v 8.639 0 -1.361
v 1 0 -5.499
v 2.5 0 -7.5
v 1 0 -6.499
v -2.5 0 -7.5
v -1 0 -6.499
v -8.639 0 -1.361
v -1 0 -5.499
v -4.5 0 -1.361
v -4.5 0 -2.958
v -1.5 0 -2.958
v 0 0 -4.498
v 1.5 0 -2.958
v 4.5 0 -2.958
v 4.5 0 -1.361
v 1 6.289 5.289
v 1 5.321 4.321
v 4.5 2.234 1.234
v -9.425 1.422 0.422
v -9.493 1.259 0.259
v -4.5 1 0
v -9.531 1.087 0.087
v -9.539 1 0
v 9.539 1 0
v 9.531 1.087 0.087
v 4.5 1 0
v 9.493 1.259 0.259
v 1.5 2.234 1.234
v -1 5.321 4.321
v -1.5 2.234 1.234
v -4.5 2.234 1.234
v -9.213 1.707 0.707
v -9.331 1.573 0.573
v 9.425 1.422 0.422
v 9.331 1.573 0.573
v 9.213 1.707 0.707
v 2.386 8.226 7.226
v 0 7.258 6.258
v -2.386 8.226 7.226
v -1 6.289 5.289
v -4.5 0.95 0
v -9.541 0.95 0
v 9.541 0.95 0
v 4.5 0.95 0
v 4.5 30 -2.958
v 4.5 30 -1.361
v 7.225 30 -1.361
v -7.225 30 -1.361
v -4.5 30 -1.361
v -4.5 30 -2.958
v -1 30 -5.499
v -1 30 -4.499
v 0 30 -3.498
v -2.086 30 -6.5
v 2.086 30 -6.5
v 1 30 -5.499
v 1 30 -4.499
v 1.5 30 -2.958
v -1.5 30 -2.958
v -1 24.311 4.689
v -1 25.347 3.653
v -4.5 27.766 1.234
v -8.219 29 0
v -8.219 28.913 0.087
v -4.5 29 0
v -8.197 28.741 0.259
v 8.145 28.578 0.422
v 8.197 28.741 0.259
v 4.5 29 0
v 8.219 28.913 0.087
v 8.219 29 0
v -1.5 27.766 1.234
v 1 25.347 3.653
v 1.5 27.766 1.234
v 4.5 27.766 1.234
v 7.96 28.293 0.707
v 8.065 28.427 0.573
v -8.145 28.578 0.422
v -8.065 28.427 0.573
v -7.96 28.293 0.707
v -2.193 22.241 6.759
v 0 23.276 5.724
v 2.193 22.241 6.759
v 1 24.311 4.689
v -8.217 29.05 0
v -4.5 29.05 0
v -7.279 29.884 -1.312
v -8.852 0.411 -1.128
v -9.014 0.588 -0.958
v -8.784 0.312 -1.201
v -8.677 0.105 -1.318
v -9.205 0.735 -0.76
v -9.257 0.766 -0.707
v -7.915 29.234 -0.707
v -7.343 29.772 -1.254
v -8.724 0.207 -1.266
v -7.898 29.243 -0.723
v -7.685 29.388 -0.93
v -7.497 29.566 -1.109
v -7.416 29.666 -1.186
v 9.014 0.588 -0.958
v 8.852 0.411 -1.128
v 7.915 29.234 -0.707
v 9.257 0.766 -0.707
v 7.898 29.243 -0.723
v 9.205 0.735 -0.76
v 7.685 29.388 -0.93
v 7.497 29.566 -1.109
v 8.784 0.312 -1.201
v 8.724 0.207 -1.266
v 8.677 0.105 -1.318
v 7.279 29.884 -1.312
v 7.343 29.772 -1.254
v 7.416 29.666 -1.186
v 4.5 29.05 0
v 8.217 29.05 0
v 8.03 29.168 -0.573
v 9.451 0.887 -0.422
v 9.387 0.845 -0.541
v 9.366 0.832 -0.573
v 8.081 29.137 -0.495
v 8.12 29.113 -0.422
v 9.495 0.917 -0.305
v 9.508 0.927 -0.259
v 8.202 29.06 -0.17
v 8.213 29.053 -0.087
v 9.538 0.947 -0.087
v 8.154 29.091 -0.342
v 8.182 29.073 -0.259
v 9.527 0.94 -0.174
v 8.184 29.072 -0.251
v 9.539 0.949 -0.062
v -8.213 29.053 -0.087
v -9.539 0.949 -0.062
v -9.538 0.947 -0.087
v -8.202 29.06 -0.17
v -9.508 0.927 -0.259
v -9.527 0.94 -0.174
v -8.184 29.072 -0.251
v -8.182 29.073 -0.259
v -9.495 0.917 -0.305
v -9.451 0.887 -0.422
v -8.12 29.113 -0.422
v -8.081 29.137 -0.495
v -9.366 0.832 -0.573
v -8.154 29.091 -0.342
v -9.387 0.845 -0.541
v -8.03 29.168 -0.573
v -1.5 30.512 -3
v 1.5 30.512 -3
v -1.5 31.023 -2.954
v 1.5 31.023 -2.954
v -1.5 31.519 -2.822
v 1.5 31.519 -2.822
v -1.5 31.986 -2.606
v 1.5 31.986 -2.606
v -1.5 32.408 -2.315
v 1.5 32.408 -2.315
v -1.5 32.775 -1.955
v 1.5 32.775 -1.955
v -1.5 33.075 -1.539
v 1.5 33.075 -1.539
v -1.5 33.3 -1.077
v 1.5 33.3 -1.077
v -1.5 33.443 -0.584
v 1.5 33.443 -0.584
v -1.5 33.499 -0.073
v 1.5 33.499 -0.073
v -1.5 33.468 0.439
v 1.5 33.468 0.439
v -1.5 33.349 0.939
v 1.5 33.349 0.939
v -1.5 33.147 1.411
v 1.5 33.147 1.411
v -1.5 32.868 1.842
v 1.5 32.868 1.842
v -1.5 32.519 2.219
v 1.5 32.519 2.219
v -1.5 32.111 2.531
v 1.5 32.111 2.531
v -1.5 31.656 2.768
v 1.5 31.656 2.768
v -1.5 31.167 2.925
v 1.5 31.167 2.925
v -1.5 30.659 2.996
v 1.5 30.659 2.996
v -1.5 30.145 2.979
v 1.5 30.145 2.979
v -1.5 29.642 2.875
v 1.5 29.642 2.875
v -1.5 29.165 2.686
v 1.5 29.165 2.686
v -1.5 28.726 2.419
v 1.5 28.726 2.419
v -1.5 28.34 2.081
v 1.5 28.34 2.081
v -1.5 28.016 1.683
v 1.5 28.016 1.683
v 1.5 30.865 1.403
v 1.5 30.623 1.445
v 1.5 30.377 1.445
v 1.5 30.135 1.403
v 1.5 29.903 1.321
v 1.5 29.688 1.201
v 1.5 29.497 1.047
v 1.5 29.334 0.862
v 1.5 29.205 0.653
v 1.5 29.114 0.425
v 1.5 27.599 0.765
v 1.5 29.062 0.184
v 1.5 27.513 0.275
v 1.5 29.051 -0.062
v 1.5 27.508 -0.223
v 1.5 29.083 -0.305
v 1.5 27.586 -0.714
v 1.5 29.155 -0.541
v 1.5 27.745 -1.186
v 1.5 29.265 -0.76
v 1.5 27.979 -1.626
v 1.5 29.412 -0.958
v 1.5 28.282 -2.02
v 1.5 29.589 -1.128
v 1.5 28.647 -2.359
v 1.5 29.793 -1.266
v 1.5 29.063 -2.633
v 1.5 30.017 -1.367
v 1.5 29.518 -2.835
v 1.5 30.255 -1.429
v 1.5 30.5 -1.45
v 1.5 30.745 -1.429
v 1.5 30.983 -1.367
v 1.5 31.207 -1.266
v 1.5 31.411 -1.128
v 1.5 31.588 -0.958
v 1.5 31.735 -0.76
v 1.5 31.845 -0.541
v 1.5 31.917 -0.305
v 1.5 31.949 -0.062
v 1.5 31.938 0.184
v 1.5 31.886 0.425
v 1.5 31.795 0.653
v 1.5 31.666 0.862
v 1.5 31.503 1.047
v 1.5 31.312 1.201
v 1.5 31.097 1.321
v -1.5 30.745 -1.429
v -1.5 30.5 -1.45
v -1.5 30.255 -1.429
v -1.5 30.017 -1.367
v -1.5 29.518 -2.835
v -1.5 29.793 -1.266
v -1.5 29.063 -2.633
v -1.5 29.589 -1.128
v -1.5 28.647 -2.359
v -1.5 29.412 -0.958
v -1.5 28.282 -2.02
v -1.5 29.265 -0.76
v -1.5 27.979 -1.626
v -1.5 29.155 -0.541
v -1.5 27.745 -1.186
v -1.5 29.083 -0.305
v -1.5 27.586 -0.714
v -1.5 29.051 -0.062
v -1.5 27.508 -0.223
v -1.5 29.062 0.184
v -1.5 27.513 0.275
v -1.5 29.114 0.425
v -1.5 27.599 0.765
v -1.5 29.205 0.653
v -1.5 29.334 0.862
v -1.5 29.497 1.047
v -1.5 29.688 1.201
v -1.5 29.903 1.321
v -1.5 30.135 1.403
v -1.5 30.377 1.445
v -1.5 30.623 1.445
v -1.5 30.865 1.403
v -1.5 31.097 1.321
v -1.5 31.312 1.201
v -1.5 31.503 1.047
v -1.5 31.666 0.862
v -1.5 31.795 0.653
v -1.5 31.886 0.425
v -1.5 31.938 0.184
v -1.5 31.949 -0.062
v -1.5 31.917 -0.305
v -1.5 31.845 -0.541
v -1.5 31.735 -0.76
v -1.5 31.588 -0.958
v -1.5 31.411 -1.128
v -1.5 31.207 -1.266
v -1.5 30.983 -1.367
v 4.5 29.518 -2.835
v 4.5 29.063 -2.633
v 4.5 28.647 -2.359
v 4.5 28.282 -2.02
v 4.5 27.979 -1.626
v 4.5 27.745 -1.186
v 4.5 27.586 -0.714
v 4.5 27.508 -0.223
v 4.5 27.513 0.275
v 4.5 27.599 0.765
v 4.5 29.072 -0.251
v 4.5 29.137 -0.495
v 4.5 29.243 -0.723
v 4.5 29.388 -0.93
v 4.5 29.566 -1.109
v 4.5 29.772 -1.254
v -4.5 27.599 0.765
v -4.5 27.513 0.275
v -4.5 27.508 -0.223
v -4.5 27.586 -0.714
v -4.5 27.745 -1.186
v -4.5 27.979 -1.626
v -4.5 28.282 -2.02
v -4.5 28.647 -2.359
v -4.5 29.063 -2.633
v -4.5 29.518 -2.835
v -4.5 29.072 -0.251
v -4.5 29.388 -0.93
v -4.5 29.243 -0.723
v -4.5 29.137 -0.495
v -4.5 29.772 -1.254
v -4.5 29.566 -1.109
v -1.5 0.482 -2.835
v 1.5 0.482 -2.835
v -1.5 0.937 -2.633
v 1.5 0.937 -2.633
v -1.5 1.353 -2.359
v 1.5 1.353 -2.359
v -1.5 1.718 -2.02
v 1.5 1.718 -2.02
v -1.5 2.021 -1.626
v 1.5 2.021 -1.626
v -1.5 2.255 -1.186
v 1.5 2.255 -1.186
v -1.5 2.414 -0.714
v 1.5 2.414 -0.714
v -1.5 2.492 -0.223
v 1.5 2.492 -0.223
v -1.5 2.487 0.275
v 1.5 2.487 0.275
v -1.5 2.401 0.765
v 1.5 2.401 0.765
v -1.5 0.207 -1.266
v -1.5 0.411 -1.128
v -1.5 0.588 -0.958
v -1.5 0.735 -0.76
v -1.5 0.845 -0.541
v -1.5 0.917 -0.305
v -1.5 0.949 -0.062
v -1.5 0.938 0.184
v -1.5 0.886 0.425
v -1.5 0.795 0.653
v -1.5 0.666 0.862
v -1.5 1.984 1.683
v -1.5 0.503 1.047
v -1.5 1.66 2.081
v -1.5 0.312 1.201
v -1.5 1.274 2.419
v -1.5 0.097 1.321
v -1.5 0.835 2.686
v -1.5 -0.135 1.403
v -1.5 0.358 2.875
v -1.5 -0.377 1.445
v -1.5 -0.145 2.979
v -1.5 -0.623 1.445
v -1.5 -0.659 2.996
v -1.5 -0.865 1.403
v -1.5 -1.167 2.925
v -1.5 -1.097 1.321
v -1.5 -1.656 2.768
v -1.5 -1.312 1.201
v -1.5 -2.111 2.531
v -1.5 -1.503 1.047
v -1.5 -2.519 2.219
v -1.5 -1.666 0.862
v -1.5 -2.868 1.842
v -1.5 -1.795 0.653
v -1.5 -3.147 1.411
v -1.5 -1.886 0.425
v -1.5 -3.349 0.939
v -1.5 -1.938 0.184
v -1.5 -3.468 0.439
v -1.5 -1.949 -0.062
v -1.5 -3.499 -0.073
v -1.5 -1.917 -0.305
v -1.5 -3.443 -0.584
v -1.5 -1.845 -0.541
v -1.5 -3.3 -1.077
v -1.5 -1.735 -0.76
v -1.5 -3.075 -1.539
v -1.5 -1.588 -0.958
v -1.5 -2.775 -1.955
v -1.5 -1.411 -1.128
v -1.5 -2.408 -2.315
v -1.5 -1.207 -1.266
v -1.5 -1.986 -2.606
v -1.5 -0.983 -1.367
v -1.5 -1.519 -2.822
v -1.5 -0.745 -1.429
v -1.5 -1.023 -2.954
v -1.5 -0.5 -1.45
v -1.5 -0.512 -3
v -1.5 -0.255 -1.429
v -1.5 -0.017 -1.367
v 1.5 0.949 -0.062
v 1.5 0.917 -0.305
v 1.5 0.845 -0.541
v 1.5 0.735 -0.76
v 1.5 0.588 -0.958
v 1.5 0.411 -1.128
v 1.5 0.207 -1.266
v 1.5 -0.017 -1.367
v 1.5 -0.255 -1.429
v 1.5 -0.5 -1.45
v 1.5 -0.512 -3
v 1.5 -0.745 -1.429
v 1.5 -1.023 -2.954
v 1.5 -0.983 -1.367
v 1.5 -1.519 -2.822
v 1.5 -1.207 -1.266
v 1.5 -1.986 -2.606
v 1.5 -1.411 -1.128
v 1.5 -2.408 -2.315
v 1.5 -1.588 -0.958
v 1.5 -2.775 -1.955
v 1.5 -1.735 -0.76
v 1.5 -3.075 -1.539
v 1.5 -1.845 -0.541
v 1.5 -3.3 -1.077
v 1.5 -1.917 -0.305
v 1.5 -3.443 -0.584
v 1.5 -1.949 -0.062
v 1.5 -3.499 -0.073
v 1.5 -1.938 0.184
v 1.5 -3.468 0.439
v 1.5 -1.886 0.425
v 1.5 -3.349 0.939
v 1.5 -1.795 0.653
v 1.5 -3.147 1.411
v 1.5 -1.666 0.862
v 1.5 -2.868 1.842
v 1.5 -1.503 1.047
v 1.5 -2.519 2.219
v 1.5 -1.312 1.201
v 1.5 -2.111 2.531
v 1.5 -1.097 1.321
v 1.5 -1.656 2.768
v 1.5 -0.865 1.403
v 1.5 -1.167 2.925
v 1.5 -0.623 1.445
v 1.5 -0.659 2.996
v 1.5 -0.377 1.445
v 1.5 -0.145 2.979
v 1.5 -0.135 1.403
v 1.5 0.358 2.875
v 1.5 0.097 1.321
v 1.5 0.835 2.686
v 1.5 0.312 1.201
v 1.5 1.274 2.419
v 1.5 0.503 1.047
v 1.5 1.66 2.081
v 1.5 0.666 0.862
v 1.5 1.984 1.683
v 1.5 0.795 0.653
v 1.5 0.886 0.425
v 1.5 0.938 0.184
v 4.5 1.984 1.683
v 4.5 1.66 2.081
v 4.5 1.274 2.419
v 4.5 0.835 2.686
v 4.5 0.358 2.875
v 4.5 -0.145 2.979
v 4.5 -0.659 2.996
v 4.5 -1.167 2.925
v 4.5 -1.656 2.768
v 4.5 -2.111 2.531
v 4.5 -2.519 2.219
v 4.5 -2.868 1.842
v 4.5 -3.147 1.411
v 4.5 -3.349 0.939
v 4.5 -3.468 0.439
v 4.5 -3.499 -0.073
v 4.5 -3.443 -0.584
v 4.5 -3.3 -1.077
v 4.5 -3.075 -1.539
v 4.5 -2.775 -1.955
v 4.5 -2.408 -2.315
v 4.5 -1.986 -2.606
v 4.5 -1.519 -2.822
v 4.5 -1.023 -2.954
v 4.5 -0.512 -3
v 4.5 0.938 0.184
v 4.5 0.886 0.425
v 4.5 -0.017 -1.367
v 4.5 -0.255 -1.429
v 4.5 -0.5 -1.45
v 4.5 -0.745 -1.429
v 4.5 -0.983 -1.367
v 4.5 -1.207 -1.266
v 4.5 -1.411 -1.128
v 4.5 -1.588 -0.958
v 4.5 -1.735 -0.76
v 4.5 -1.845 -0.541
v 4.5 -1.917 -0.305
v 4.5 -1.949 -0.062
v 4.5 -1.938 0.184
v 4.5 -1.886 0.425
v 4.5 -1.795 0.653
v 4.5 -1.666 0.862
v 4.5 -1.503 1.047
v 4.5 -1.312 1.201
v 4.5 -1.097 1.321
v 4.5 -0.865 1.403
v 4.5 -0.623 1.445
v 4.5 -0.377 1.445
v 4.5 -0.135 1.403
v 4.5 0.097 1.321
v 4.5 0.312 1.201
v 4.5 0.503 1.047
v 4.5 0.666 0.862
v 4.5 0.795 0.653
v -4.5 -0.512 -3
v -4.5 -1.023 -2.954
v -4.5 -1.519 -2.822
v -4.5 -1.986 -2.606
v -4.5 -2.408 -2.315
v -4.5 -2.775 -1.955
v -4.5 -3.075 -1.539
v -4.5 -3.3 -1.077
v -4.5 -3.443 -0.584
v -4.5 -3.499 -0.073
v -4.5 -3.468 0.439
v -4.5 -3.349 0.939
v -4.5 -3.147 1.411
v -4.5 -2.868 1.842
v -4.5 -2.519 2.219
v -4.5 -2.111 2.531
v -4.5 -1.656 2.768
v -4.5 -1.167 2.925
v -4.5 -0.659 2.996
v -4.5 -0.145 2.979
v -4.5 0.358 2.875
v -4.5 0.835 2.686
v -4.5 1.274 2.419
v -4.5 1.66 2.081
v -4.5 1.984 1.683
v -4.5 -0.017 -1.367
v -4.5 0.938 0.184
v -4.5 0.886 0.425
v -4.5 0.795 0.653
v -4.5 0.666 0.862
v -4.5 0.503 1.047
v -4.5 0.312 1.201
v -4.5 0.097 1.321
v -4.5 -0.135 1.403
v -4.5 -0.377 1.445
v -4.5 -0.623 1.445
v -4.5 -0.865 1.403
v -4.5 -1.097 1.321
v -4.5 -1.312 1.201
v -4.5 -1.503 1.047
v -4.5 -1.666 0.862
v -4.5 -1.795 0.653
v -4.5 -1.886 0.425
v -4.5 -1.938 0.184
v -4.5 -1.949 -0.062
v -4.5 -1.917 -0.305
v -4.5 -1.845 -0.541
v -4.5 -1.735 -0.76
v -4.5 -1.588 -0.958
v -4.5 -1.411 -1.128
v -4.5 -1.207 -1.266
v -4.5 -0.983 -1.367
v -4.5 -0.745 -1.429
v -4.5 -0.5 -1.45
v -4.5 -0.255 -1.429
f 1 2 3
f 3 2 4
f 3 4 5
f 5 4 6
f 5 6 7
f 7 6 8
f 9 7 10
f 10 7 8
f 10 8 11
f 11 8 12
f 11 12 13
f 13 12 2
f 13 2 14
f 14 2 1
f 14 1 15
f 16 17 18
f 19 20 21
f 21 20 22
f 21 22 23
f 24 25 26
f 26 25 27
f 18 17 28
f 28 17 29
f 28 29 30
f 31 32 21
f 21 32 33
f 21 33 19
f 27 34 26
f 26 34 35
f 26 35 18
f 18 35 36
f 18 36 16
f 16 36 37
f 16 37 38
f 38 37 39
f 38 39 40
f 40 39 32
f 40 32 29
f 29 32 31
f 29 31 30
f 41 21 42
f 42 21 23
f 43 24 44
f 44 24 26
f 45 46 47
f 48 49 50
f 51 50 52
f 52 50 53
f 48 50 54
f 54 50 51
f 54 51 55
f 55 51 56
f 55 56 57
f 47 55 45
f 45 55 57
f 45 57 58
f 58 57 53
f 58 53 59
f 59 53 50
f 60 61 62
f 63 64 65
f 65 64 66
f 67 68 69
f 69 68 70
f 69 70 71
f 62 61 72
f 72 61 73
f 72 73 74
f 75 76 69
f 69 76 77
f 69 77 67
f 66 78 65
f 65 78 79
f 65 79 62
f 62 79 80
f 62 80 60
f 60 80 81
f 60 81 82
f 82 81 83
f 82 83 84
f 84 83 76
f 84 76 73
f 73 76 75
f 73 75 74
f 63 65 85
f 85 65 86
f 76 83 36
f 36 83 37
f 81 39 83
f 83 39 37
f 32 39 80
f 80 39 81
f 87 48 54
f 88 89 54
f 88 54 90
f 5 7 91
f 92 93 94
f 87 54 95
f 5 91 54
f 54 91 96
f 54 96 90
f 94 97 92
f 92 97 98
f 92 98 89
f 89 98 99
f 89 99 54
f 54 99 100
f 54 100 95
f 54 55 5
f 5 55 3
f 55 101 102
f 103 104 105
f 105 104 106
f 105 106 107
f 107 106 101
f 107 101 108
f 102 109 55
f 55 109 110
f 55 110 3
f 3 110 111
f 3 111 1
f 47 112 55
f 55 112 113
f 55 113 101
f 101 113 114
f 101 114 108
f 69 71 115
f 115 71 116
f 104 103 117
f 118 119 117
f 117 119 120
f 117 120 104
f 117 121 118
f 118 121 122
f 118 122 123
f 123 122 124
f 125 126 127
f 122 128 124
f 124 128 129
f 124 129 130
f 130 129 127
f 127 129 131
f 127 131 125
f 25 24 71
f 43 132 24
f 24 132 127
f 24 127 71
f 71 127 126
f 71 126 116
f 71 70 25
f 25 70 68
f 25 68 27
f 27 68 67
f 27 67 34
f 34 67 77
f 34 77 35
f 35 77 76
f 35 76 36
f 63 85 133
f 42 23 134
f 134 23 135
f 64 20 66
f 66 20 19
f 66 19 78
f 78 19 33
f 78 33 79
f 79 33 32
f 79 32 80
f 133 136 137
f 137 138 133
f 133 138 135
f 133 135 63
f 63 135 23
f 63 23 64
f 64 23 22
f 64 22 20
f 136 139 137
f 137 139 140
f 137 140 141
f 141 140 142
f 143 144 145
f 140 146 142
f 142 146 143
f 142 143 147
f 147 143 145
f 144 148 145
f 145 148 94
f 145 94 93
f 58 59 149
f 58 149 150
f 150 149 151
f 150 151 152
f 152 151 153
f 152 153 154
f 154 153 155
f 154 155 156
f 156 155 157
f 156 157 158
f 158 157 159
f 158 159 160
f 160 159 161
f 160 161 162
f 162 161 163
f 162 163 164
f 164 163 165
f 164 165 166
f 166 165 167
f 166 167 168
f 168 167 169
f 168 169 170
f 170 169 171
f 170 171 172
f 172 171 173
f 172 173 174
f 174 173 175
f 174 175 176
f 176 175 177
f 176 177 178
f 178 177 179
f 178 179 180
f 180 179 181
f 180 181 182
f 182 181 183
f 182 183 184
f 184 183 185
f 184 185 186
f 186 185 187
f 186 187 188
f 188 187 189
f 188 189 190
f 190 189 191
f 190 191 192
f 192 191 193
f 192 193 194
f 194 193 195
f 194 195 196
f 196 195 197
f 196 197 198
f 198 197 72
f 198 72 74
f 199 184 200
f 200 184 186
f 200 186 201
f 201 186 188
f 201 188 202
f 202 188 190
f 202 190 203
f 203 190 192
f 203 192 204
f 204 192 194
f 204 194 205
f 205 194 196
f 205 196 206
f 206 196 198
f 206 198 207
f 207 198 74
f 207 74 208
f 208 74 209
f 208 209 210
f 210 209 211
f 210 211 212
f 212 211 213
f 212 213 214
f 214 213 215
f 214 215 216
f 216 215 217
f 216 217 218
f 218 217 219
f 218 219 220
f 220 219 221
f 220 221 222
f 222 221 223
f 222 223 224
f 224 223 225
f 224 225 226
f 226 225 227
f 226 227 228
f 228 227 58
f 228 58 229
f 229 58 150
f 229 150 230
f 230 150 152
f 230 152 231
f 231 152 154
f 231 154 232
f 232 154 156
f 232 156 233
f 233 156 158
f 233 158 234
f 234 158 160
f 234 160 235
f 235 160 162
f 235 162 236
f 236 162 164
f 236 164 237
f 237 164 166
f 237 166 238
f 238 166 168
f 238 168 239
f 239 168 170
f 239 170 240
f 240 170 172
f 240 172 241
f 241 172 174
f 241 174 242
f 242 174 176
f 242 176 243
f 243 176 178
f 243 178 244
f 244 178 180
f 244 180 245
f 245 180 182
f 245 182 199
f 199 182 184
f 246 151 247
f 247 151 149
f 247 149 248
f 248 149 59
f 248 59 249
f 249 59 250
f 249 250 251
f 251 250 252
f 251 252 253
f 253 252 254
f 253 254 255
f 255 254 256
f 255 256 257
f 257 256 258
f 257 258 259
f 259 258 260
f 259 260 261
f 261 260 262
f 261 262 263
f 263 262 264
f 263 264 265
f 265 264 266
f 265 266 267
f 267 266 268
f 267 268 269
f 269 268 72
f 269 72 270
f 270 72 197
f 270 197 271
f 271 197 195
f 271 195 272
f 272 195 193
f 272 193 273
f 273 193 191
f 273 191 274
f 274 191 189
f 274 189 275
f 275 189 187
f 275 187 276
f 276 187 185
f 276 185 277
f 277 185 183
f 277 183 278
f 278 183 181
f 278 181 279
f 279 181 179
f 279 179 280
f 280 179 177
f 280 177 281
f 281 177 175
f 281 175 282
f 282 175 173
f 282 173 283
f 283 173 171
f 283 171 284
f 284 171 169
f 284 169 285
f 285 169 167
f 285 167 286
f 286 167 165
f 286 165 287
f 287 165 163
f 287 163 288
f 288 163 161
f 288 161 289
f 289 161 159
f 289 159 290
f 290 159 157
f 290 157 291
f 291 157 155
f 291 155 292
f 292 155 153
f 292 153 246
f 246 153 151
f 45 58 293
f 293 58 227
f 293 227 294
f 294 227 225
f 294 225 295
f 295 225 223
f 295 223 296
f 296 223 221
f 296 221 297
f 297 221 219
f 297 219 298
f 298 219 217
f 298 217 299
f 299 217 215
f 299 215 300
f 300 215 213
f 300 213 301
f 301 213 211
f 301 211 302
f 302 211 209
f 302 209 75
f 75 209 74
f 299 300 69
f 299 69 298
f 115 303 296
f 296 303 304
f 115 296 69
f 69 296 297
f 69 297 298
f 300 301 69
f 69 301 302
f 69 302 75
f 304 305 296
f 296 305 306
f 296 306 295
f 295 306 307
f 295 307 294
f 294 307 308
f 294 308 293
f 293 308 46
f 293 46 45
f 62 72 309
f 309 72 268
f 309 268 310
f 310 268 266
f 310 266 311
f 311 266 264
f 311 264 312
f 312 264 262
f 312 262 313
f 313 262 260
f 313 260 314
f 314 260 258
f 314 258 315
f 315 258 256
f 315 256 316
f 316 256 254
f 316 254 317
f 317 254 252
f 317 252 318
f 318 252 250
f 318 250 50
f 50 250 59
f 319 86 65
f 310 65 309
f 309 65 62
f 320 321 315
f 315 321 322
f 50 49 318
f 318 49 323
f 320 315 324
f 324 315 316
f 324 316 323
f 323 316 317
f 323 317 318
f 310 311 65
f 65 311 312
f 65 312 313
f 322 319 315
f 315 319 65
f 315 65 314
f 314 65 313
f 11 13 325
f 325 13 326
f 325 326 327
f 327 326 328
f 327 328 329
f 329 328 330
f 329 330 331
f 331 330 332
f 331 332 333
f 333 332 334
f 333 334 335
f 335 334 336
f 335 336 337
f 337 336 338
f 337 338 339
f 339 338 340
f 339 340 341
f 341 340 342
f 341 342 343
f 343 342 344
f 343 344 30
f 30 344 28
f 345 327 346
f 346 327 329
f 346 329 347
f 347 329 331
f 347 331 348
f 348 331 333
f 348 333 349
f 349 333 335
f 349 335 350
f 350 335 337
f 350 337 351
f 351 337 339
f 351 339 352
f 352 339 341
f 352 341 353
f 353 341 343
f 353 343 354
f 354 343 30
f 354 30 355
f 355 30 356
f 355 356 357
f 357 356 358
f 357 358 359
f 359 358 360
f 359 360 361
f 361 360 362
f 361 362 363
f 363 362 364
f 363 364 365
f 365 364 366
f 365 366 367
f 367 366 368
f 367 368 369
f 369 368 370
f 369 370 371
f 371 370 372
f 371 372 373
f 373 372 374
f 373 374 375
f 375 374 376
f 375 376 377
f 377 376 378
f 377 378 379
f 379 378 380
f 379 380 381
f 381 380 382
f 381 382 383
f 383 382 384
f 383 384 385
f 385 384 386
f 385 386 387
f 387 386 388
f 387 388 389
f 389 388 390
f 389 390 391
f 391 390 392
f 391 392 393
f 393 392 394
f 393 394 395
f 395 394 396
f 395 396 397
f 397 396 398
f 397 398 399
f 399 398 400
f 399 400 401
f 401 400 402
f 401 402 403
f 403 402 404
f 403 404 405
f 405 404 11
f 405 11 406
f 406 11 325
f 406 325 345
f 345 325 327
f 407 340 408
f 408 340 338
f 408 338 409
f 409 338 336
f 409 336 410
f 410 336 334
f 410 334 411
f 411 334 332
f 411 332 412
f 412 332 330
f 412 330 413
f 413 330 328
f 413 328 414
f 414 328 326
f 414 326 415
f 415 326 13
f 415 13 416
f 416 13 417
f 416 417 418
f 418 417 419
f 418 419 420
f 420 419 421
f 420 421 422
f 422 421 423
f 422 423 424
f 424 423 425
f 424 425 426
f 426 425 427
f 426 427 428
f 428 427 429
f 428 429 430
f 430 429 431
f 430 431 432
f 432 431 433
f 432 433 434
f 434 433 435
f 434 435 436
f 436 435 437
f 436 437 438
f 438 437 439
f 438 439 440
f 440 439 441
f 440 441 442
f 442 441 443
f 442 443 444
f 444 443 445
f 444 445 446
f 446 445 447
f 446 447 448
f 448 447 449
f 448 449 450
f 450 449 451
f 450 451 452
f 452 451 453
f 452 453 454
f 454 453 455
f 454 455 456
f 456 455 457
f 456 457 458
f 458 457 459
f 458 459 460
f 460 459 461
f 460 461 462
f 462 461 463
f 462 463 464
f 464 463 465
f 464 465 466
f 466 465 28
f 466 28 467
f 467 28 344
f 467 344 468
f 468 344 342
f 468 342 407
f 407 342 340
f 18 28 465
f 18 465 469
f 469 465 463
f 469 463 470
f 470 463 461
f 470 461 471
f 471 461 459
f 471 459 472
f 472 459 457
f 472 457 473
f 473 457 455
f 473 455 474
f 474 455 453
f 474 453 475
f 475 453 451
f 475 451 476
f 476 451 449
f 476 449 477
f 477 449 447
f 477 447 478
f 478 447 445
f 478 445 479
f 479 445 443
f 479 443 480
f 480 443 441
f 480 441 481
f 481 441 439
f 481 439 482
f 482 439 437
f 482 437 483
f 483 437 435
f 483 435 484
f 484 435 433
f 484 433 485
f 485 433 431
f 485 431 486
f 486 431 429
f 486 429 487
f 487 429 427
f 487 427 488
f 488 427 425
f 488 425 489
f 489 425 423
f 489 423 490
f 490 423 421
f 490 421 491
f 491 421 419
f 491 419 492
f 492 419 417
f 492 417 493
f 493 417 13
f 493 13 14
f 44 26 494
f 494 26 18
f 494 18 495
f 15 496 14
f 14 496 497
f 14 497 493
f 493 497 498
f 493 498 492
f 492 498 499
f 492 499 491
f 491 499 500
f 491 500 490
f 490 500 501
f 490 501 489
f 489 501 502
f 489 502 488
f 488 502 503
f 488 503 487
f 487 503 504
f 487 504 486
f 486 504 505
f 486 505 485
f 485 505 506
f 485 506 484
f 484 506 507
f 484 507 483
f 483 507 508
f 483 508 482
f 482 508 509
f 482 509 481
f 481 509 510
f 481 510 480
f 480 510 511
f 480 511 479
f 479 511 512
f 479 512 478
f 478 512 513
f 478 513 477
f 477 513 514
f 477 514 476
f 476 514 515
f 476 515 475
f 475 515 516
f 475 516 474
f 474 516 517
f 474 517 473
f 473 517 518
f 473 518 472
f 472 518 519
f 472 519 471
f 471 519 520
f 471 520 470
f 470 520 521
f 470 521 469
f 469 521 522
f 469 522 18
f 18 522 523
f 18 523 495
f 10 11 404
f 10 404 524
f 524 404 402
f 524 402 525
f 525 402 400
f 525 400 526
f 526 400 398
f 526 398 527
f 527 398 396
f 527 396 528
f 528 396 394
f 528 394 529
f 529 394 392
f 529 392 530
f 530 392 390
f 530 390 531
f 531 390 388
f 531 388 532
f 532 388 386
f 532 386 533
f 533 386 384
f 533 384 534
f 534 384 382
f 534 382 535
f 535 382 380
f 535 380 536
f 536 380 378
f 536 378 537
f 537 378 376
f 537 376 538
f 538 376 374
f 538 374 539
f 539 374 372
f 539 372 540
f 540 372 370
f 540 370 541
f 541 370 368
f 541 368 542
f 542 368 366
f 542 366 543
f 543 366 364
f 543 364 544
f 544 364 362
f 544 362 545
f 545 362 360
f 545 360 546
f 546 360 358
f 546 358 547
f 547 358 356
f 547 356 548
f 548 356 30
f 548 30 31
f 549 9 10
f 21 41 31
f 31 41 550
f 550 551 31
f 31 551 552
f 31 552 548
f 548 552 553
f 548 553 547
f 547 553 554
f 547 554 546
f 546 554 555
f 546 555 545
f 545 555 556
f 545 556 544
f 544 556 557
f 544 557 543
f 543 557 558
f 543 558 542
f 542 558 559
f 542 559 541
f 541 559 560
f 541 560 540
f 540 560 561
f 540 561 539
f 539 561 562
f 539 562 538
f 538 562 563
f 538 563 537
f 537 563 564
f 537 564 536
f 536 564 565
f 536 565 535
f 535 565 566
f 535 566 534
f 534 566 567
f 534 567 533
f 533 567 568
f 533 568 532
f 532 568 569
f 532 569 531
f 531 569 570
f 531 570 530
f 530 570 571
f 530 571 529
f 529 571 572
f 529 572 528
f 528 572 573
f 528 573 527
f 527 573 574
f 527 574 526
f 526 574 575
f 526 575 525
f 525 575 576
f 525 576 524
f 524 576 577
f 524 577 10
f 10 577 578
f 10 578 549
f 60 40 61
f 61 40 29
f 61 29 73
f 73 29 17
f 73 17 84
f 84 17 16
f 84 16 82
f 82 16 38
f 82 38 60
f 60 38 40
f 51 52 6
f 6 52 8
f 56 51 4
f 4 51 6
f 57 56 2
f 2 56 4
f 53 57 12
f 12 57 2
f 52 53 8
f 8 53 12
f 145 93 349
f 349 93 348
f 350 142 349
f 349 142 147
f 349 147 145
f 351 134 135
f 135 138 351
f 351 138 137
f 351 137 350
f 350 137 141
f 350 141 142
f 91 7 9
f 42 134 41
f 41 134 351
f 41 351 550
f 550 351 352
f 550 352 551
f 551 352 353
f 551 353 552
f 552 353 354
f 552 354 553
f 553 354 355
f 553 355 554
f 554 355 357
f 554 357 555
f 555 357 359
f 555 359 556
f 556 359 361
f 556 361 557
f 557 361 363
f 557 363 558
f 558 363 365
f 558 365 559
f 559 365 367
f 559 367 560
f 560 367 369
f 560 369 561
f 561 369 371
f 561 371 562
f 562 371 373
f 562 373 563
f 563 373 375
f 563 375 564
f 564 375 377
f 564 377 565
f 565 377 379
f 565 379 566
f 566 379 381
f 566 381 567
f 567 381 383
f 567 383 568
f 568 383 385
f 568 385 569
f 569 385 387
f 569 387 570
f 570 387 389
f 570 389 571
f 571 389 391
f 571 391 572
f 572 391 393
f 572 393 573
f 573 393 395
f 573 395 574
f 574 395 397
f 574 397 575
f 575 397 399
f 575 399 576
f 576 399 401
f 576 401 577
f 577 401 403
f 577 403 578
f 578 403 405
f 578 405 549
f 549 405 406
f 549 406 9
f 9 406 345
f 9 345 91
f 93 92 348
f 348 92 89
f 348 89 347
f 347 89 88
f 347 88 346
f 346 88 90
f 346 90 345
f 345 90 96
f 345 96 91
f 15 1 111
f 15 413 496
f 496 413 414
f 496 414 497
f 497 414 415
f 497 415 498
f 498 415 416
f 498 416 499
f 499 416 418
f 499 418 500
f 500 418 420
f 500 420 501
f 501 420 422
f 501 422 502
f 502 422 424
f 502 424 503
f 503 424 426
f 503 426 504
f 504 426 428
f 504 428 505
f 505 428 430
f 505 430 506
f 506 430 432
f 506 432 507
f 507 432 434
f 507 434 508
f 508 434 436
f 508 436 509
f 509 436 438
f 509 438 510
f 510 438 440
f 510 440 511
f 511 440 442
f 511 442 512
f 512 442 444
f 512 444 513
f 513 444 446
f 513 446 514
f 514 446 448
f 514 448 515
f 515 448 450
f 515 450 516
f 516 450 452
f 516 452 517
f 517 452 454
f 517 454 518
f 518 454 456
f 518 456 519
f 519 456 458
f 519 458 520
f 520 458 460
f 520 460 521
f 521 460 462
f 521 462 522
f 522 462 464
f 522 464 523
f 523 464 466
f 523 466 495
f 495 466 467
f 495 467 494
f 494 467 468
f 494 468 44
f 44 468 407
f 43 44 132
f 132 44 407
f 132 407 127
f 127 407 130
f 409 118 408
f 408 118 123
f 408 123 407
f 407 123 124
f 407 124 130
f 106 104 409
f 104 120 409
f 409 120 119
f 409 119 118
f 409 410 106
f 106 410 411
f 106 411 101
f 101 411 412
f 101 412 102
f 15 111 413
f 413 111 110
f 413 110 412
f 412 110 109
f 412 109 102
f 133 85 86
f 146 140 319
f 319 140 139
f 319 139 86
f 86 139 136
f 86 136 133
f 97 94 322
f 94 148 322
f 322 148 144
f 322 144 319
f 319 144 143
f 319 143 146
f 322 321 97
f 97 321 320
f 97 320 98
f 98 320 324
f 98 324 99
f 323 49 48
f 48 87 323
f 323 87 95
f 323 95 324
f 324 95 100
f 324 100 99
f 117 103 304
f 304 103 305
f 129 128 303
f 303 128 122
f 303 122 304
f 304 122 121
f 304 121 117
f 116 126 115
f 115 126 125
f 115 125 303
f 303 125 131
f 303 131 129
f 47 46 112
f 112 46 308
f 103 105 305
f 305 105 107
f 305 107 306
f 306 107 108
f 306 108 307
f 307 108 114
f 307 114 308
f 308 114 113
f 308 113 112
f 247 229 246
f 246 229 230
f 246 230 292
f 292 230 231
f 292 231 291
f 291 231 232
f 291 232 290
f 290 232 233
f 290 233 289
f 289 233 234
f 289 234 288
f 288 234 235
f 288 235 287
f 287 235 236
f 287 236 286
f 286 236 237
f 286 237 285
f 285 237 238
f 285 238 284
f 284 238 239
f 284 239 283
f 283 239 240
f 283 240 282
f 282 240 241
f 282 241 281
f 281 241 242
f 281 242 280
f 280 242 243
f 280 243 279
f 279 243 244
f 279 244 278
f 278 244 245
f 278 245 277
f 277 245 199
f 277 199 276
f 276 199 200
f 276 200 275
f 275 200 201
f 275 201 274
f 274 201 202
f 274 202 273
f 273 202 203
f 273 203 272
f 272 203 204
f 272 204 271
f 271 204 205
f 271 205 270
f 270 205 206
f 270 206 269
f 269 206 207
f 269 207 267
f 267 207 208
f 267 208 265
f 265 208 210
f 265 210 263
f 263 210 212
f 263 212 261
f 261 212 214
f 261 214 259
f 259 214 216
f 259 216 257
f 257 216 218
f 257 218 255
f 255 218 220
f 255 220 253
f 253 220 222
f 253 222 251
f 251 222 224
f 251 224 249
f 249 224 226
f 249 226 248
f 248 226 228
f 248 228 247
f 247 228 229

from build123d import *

# Parameters (mm, degrees)
LOFT1_DEPTH             = 30
LOFT1_DRAFT             = 1.9091524
CUT_EXTRUDE2_DEPTH      = 33.499999989
CUT_EXTRUDE2_DEPTH_BACK = 33.499999989
FILLET5_R               = 1
SKETCH4_R               = 3
BOSS_EXTRUDE1_DEPTH     = 1.5
CUT_EXTRUDE3_START      = 3
SKETCH5_R               = 3
CUT_EXTRUDE3_DEPTH      = 3
SKETCH7_R               = 3
CUT_EXTRUDE5_DEPTH      = 1.5
BOSS_EXTRUDE2_START     = -3
SKETCH8_R               = 3
BOSS_EXTRUDE2_DEPTH     = 3
CUT_EXTRUDE6_DEPTH      = 23.235565384
CUT_EXTRUDE6_DEPTH_BACK = 23.235565384
CUT_EXTRUDE7_DEPTH      = 23.523598989
CUT_EXTRUDE7_DEPTH_BACK = 23.523598989
CUT_EXTRUDE8_DEPTH      = 36.642580329
CUT_EXTRUDE8_DEPTH_BACK = 36.642580329
SKETCH11_R              = 1.45


# Read off the part's stored shape, not the designer's step: Loft1
with BuildPart() as part:
    # Loft1 outline → Loft1 (with draft: the straight prism first)
    with BuildSketch(Plane(origin=(0, 30, 0), x_dir=(1, 0, 0), z_dir=(0, 1, 0))):
        Polygon((2.085786438, 6.5), (-2.085786438, 6.5), (-8.585786438, 0), (-2.085786438, -6.5), (2.085786438, -6.5), (8.585786438, 0), align=None)
    extrude(amount=-LOFT1_DEPTH)
    # Loft1: the draft: its side faces are tilted about the plane it starts from
    loft1_sides = [part.faces().sort_by_distance(p)[0] for p in [
        (0, 15, -6.5),
        (-5.335786438, 15, -3.25),
        (-5.335786438, 15, 3.25),
        (0, 15, 6.5),
        (5.335786438, 15, 3.25),
        (5.335786438, 15, -3.25),
    ]]
    draft(loft1_sides, Plane(origin=(0, 30, 0), x_dir=(1, 0, 0), z_dir=(0, 1, 0)), LOFT1_DRAFT)

    # Sketch3 → Cut-Extrude2 (cut, two sides: drawn at the far end of the back side and taken through both)
    with BuildSketch(Plane(origin=(0, 0, 0), x_dir=(0, 0, -1), z_dir=(1, 0, 0)).offset(-CUT_EXTRUDE2_DEPTH_BACK)):
        Polygon((0, 30), (0, 29), (-6.75862069, 22.24137931), (-6.5, 30), align=None)
        Polygon((0, 0), (0, 1), (-7.225806452, 8.225806452), (-7.5, 0), align=None)
    extrude(amount=CUT_EXTRUDE2_DEPTH + CUT_EXTRUDE2_DEPTH_BACK, mode=Mode.SUBTRACT)

    # Fillet5
    # the kernel refuses this fillet: 1 mm, written as the material it takes off along each edge
    with BuildSketch(Plane(origin=(8.515337072, 31.494456763, 0), x_dir=(-0.7059303394201505, -0.033277874761044414, -0.7074990734534847), z_dir=(0.04708816012216718, -0.9988907373563483, 0))) as fillet5_piece_1:
        with BuildLine():
            CenterArc((FILLET5_R * 0.998890737356, -FILLET5_R), FILLET5_R, 90, 89.936408669)
            Line((-FILLET5_R * 0.00110864672901, -FILLET5_R * 0.998890122125), (0, 0))
            Line((0, 0), (FILLET5_R * 0.998890737356, 0))
        make_face()
    extrude(amount=33.025547532, mode=Mode.SUBTRACT)
    with BuildSketch(Plane(origin=(-8.515337072, 31.494456763, 0), x_dir=(0.7059303394201496, -0.03327787476104438, -0.7074990734534856), z_dir=(-0.04708816012216718, -0.9988907373563483, 0))) as fillet5_piece_2:
        with BuildLine():
            CenterArc((FILLET5_R * 0.998890737356, FILLET5_R), FILLET5_R, 180.063591331, 89.936408669)
            Line((-FILLET5_R * 0.00110864672902, FILLET5_R * 0.998890122125), (0, 0))
            Line((0, 0), (FILLET5_R * 0.998890737356, 0))
        make_face()
    extrude(amount=33.025547532, mode=Mode.SUBTRACT)

    # Sketch4 → Boss-Extrude1 (add, symmetric)
    with BuildSketch(Plane(origin=(0, 0, 0), x_dir=(0, 0, -1), z_dir=(1, 0, 0))):
        with Locations((0, 30.5)):
            Circle(SKETCH4_R)
    extrude(amount=BOSS_EXTRUDE1_DEPTH, both=True)

    # Sketch5 → Cut-Extrude3 (cut)
    with BuildSketch(Plane(origin=(1.5, 0, 0), x_dir=(0, 0, -1), z_dir=(1, 0, 0)).offset(CUT_EXTRUDE3_START)):
        with Locations((0, 30.5)):
            Circle(SKETCH5_R)
    cut_extrude3 = extrude(amount=-CUT_EXTRUDE3_DEPTH, mode=Mode.SUBTRACT)

    # Mirror1: Cut-Extrude3 across plane
    add(cut_extrude3.mirror(Plane(origin=(0, 0, 0), x_dir=(0, 0, 1), z_dir=(1, 0, 0))), mode=Mode.SUBTRACT)

    # Sketch7 → Cut-Extrude5 (cut, symmetric)
    with BuildSketch(Plane(origin=(0, 0, 0), x_dir=(0, 0, -1), z_dir=(1, 0, 0))):
        with Locations((0, -0.5)):
            Circle(SKETCH7_R)
    extrude(amount=CUT_EXTRUDE5_DEPTH, both=True, mode=Mode.SUBTRACT)

    # Sketch8 → Boss-Extrude2 (add)
    with BuildSketch(Plane.ZY.offset(-1.5).offset(BOSS_EXTRUDE2_START)):
        with Locations((0, -0.5)):
            Circle(SKETCH8_R)
    boss_extrude2 = extrude(amount=BOSS_EXTRUDE2_DEPTH)

    # Mirror2: Boss-Extrude2 across plane
    add(boss_extrude2.mirror(Plane(origin=(0, 0, 0), x_dir=(0, 0, 1), z_dir=(1, 0, 0))))

    # Sketch9 → Cut-Extrude6 (cut, two sides: drawn at the far end of the back side and taken through both)
    with BuildSketch(Plane(origin=(0, 14.98387035, -0.499462345), x_dir=(1, 0, 0), z_dir=(0, 0.9994449069791544, -0.03331483023263851)).offset(-CUT_EXTRUDE6_DEPTH_BACK)):
        Polygon((-1, -4.495836802), (1, -4.495836802), (1, -5.495836802), (0, -6.495836802), (-1, -5.495836802), align=None)
    extrude(amount=CUT_EXTRUDE6_DEPTH + CUT_EXTRUDE6_DEPTH_BACK, mode=Mode.SUBTRACT)

    # Sketch10 → Cut-Extrude7 (cut, two sides: drawn at the far end of the back side and taken through both)
    with BuildSketch(Plane(origin=(0, 14.750277469, 0.491675916), x_dir=(1, 0, 0), z_dir=(0, 0.9994449069791544, 0.03331483023263851)).offset(-CUT_EXTRUDE7_DEPTH_BACK)):
        Polygon((-1, 6.495836802), (1, 6.495836802), (1, 5.495836802), (0, 4.495836802), (-1, 5.495836802), align=None)
    extrude(amount=CUT_EXTRUDE7_DEPTH + CUT_EXTRUDE7_DEPTH_BACK, mode=Mode.SUBTRACT)

    # Sketch11 → Cut-Extrude8 (cut, two sides: drawn at the far end of the back side and taken through both)
    with BuildSketch(Plane(origin=(0, 0, 0), x_dir=(0, 0, -1), z_dir=(1, 0, 0)).offset(-CUT_EXTRUDE8_DEPTH_BACK)):
        with Locations((0, 30.5)):
            Circle(SKETCH11_R)
        with Locations((0, -0.5)):
            Circle(SKETCH11_R)
    extrude(amount=CUT_EXTRUDE8_DEPTH + CUT_EXTRUDE8_DEPTH_BACK, mode=Mode.SUBTRACT)


solid = part.part
